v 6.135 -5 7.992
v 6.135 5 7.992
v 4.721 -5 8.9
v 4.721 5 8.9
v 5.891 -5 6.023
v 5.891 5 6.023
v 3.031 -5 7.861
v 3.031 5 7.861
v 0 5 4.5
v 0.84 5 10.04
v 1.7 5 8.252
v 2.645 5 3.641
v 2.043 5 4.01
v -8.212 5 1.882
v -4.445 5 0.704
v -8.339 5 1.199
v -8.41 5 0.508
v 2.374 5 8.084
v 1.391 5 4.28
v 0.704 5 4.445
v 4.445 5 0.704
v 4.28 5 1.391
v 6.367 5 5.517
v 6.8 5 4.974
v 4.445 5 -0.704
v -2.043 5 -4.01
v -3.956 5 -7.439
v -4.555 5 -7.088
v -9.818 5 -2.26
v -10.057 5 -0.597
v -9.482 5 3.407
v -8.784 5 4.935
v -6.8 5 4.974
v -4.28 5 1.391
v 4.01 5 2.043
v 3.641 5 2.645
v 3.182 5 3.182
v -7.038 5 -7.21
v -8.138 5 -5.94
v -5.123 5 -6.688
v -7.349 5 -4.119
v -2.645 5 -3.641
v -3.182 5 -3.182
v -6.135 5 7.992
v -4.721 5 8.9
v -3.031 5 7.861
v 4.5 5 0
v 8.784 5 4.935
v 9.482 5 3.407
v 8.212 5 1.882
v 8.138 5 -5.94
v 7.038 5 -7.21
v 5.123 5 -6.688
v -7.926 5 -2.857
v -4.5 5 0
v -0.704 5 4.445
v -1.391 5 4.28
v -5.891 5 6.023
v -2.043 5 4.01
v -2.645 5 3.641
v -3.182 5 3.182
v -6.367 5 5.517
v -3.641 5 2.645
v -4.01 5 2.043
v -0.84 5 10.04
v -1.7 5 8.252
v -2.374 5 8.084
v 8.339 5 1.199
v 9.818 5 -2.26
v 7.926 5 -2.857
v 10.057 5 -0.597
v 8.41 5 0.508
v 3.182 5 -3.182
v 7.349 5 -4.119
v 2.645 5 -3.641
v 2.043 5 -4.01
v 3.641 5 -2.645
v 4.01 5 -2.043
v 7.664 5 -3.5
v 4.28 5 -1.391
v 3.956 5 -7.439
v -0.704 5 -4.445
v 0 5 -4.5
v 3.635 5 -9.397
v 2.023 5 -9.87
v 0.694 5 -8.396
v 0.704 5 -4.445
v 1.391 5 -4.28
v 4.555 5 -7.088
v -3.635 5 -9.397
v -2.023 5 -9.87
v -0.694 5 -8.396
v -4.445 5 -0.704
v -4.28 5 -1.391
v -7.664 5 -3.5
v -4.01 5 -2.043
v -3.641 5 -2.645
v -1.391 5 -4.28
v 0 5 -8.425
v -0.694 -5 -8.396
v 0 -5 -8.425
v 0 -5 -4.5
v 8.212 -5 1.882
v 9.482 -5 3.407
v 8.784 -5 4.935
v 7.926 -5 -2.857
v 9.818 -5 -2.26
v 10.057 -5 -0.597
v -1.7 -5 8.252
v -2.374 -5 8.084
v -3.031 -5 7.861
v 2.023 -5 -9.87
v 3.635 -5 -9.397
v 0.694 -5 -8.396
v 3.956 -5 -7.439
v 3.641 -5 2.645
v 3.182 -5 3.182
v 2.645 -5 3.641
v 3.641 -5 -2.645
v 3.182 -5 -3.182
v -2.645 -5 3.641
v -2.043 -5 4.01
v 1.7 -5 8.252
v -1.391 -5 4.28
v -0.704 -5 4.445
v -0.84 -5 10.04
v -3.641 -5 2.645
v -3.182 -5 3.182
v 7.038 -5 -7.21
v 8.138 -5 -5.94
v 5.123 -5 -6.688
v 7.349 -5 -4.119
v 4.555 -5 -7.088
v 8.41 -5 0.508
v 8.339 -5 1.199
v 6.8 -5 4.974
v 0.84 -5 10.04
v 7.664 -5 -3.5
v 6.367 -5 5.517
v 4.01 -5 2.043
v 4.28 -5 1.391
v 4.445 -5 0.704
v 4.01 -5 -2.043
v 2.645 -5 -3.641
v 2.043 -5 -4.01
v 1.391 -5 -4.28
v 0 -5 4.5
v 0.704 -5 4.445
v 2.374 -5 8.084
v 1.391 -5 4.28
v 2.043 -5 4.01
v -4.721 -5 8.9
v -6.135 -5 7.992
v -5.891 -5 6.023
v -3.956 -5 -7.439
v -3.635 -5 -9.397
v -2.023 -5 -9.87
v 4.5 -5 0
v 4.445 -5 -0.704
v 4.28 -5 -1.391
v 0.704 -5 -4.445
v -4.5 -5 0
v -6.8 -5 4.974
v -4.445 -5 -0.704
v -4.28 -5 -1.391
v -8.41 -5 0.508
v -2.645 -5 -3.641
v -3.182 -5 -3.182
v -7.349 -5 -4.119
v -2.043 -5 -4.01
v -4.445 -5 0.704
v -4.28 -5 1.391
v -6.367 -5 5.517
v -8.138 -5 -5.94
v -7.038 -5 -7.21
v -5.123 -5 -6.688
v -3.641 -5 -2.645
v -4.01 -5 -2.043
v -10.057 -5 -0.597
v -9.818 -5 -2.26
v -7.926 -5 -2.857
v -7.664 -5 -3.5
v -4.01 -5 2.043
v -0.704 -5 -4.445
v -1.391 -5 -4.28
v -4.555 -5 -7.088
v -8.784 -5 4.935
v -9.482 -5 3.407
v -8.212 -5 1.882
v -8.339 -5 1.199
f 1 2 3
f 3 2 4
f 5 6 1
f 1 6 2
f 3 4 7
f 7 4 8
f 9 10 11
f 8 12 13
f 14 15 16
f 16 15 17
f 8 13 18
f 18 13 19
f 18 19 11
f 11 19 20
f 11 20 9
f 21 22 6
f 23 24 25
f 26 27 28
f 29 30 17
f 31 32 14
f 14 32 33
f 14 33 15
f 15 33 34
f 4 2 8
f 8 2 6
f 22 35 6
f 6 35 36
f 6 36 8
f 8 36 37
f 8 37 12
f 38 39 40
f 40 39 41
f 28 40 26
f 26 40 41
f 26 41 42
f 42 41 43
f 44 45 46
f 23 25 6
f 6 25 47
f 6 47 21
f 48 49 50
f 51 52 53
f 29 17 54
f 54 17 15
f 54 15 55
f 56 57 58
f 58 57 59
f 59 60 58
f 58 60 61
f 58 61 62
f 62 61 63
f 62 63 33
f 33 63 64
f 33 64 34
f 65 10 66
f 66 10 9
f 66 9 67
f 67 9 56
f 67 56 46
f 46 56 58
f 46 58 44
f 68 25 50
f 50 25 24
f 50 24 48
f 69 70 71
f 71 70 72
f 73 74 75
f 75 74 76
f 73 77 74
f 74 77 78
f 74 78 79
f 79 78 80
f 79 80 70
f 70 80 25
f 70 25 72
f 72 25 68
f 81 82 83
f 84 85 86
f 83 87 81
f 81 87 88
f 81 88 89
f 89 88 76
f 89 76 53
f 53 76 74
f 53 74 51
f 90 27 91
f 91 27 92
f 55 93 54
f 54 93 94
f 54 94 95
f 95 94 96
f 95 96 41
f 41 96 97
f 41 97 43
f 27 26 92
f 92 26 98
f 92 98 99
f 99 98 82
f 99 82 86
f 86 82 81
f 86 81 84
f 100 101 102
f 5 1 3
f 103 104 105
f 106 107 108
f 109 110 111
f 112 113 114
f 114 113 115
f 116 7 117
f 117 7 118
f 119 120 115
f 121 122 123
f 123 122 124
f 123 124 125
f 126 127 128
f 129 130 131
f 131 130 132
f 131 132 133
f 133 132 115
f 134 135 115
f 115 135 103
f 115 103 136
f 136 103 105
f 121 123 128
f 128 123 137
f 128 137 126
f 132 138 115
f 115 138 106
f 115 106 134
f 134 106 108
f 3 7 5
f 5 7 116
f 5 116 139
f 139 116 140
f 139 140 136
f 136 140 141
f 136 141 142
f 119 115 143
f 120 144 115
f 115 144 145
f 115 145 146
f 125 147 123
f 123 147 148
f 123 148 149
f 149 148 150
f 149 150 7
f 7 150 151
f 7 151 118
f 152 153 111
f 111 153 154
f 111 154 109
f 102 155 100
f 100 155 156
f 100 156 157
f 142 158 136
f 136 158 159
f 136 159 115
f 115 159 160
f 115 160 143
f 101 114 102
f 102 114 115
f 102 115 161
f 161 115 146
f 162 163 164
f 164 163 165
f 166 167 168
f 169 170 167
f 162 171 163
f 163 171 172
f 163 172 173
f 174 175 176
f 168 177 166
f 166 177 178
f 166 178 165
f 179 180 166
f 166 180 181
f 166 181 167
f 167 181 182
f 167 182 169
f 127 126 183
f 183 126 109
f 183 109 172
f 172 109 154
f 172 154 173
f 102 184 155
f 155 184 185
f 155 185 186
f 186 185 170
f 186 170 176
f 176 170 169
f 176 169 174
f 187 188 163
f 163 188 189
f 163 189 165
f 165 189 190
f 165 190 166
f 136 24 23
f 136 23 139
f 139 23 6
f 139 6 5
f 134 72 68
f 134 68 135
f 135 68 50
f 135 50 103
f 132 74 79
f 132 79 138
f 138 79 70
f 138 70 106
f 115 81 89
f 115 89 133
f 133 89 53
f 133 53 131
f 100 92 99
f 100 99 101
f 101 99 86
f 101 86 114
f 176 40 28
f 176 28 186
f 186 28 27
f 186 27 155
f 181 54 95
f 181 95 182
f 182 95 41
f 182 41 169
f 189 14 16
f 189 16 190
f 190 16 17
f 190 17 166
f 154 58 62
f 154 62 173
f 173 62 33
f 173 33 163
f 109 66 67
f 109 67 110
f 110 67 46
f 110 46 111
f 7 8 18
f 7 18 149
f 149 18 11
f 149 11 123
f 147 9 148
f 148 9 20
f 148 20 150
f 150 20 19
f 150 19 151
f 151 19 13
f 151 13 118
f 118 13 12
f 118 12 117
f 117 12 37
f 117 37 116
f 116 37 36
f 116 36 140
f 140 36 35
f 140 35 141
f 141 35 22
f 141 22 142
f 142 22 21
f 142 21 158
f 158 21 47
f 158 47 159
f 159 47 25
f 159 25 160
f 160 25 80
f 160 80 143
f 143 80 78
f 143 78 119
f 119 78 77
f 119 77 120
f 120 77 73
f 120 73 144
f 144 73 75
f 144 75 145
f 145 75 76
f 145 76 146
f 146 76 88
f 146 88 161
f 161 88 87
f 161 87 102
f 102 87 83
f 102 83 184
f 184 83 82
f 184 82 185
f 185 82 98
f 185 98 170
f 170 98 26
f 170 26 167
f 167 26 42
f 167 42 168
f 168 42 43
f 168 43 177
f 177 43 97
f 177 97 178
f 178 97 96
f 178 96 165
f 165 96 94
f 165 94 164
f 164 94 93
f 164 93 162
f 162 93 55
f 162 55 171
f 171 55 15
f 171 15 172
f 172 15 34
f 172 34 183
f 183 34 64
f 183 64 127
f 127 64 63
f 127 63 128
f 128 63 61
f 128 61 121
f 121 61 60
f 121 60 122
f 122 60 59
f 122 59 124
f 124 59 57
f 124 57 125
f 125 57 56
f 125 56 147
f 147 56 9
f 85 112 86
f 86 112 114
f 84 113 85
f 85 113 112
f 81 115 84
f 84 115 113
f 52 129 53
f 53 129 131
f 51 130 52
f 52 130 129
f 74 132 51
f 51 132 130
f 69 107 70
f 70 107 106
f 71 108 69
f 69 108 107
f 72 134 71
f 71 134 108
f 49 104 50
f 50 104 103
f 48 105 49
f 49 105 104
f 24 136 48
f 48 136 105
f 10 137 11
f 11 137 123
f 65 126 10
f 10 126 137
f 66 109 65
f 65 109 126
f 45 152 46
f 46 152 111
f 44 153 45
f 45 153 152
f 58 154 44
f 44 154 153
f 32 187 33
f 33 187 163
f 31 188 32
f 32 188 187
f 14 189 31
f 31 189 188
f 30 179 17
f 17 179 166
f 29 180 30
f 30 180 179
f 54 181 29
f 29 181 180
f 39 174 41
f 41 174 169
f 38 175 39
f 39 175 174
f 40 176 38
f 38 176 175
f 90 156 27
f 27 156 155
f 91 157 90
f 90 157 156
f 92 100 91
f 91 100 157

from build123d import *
from build123d.topology import SkipClean

# Parameters (mm, degrees)
SKETCH1_R            = 4.5
BOSS_EXTRUDE1_DEPTH  = 4.999999999999969
SKETCH12_R           = 8.425
SKETCH12_R_2         = 4.5
BOSS_EXTRUDE6_DEPTH  = 5
BOSS_EXTRUDE9_DEPTH  = 5
CIRPATTERN2_COUNT    = 11
BOSS_EXTRUDE10_START = 5
SKETCH17_R           = 8.425
SKETCH17_R_2         = 4.5
BOSS_EXTRUDE10_DEPTH = 5
BOSS_EXTRUDE11_DEPTH = 5
SKETCH19_R           = 4.5
CUT_EXTRUDE1_DEPTH   = 10


with BuildPart() as part:
    # Sketch1 → Boss-Extrude1 (new body)
    with BuildSketch(Plane(origin=(0, 0, 0), x_dir=(1, 0, 0), z_dir=(0, 1, 0))):
        with Locations(Location((0, 0, 0), (0, 0, 270))):
            Circle(SKETCH1_R)
    extrude(amount=BOSS_EXTRUDE1_DEPTH)

    # Sketch19 → Cut-Extrude1 (cut)
    with BuildSketch(Plane.XZ):
        with Locations(Location((0, 0, 0), (0, 0, 270))):
            Circle(SKETCH19_R)
    extrude(amount=-CUT_EXTRUDE1_DEPTH, mode=Mode.SUBTRACT)


with BuildPart() as body_2:
    # Sketch12 → Boss-Extrude6 (new body)
    with BuildSketch(Plane(origin=(0, 5, 0), x_dir=(-1, 0, 0), z_dir=(0, -1, 0))):
        with Locations(Location((0, 0, 0), (0, 0, 90))):
            Circle(SKETCH12_R)
        with Locations(Location((0, 0, 0), (0, 0, 270))):
            Circle(SKETCH12_R_2, mode=Mode.SUBTRACT)
    extrude(amount=BOSS_EXTRUDE6_DEPTH)



with BuildPart() as body_3:
    # Sketch13 → Boss-Extrude9 (new body)
    with BuildSketch(Plane.XZ):
        with BuildLine():
            Line((1.700000000000002, 8.251704369401512), (0.84, 10.039921563438629))
            Line((0.84, 10.039921563438629), (-0.84, 10.039921563438629))
            Line((-0.84, 10.039921563438629), (-1.6999999999999977, 8.251704369401512))
            ThreePointArc((-1.6999999999999977, 8.251704369401514), (2.39e-15, 8.425), (1.7000000000000024, 8.251704369401512))
        make_face()
    extrude(amount=-BOSS_EXTRUDE9_DEPTH)


with BuildPart() as cirpattern2_1:
    # CirPattern2: pattern copy
    add(body_3.part.rotate(Axis((-9e-17, 0, -3.9e-16), (0, 1, 0)), 1 * 360 / CIRPATTERN2_COUNT))


with BuildPart() as cirpattern2_2:
    # CirPattern2: pattern copy
    add(body_3.part.rotate(Axis((-9e-17, 0, -3.9e-16), (0, 1, 0)), 2 * 360 / CIRPATTERN2_COUNT))


with BuildPart() as cirpattern2_3:
    # CirPattern2: pattern copy
    add(body_3.part.rotate(Axis((-9e-17, 0, -3.9e-16), (0, 1, 0)), 3 * 360 / CIRPATTERN2_COUNT))


with BuildPart() as cirpattern2_4:
    # CirPattern2: pattern copy
    add(body_3.part.rotate(Axis((-9e-17, 0, -3.9e-16), (0, 1, 0)), 4 * 360 / CIRPATTERN2_COUNT))


with BuildPart() as cirpattern2_5:
    # CirPattern2: pattern copy
    add(body_3.part.rotate(Axis((-9e-17, 0, -3.9e-16), (0, 1, 0)), 5 * 360 / CIRPATTERN2_COUNT))


with BuildPart() as cirpattern2_6:
    # CirPattern2: pattern copy
    add(body_3.part.rotate(Axis((-9e-17, 0, -3.9e-16), (0, 1, 0)), 6 * 360 / CIRPATTERN2_COUNT))


with BuildPart() as cirpattern2_7:
    # CirPattern2: pattern copy
    add(body_3.part.rotate(Axis((-9e-17, 0, -3.9e-16), (0, 1, 0)), 7 * 360 / CIRPATTERN2_COUNT))


with BuildPart() as cirpattern2_8:
    # CirPattern2: pattern copy
    add(body_3.part.rotate(Axis((-9e-17, 0, -3.9e-16), (0, 1, 0)), 8 * 360 / CIRPATTERN2_COUNT))


with BuildPart() as cirpattern2_9:
    # CirPattern2: pattern copy
    add(body_3.part.rotate(Axis((-9e-17, 0, -3.9e-16), (0, 1, 0)), 9 * 360 / CIRPATTERN2_COUNT))


with BuildPart() as cirpattern2_10:
    # CirPattern2: pattern copy
    add(body_3.part.rotate(Axis((-9e-17, 0, -3.9e-16), (0, 1, 0)), 10 * 360 / CIRPATTERN2_COUNT))


with BuildPart() as body_2_1:
    with SkipClean():  # the faces are left unmerged after this step: merging them gives an invalid solid
        add(body_2.part)

        add(body_3.part)  # Boss-Extrude10 merges body 3

        add(cirpattern2_2.part)  # Boss-Extrude10 merges CirPattern2_2

        add(cirpattern2_3.part)  # Boss-Extrude10 merges CirPattern2_3

        add(cirpattern2_4.part)  # Boss-Extrude10 merges CirPattern2_4

        add(cirpattern2_5.part)  # Boss-Extrude10 merges CirPattern2_5

        add(cirpattern2_6.part)  # Boss-Extrude10 merges CirPattern2_6

        add(cirpattern2_7.part)  # Boss-Extrude10 merges CirPattern2_7

        add(cirpattern2_8.part)  # Boss-Extrude10 merges CirPattern2_8

        add(cirpattern2_9.part)  # Boss-Extrude10 merges CirPattern2_9

        add(cirpattern2_10.part)  # Boss-Extrude10 merges CirPattern2_10
        # Sketch17 → Boss-Extrude10 (add)
        # profile 1 of 11: a face of its own
        with BuildSketch(Plane.XZ.offset(BOSS_EXTRUDE10_START)):
            Circle(SKETCH17_R)
            with Locations(Location((0, 0, 0), (0, 0, 90))):
                Circle(SKETCH17_R_2, mode=Mode.SUBTRACT)
        # profile 2 of 11: a face of its own
        with BuildSketch(Plane.XZ.offset(BOSS_EXTRUDE10_START)):
            with BuildLine():
                ThreePointArc((-1.6999999999999988, 8.251704369401518), (2.05e-15, 8.425000000000002), (1.7000000000000028, 8.251704369401514))
                Line((1.7000000000000024, 8.251704369401512), (0.8400000000000013, 10.039921563438629))
                Line((0.8400000000000013, 10.039921563438629), (-0.8400000000000009, 10.039921563438629))
                Line((-0.8400000000000009, 10.039921563438629), (-1.6999999999999984, 8.251704369401514))
            make_face()
        # profile 3 of 11: a face of its own
        with BuildSketch(Plane.XZ.offset(BOSS_EXTRUDE10_START)):
            with BuildLine():
                ThreePointArc((-5.891339201488175, 6.022686062962995), (-4.554898887063417, 7.087561014102698), (-3.0310771898621596, 7.860864842312031))
                Line((-3.03107718986216, 7.860864842312031), (-4.72133843366936, 8.9002577712534))
                Line((-4.72133843366936, 8.9002577712534), (-6.134644368825746, 7.991981197927994))
                Line((-6.134644368825746, 7.991981197927994), (-5.891339201488176, 6.022686062962995))
            make_face()
        # profile 4 of 11: a face of its own
        with BuildSketch(Plane.XZ.offset(BOSS_EXTRUDE10_START)):
            with BuildLine():
                Line((-9.481582495875129, 3.4066432707159575), (-8.212219832717508, 1.8815074857999516))
                ThreePointArc((-8.21221983271751, 1.8815074857999512), (-7.663649560861826, 3.4998714845408747), (-6.7998087885111005, 4.974256270005318))
                Line((-6.7998087885111, 4.974256270005317), (-8.783685274031965, 4.934825022911553))
                Line((-8.783685274031965, 4.934825022911553), (-9.481582495875129, 3.4066432707159575))
            make_face()
        # profile 5 of 11: a face of its own
        with BuildSketch(Plane.XZ.offset(BOSS_EXTRUDE10_START)):
            with BuildLine():
                Line((-9.818185174144725, -2.260279824757259), (-7.925778691831604, -2.8570364240079513))
                ThreePointArc((-7.925778691831604, -2.857036424007951), (-8.339245647846854, -1.1990025124524568), (-8.409649141960784, 0.5083564783872193))
                Line((-8.409649141960784, 0.5083564783872193), (-10.057274102443852, -0.5973798023972904))
                Line((-10.057274102443852, -0.5973798023972905), (-9.818185174144725, -2.260279824757259))
            make_face()
        # profile 6 of 11: a face of its own
        with BuildSketch(Plane.XZ.offset(BOSS_EXTRUDE10_START)):
            with BuildLine():
                Line((-7.037583431604806, -7.20958004624413), (-5.1229588171653475, -6.688491456048056))
                ThreePointArc((-5.1229588171653475, -6.688491456048055), (-6.367190163934598, -5.517201683489059), (-7.349485312579329, -4.118942903243587))
                Line((-7.34948531257933, -4.118942903243588), (-8.137749464632893, -5.93992076132898))
                Line((-8.137749464632893, -5.93992076132898), (-7.037583431604806, -7.20958004624413))
            make_face()
        # profile 7 of 11: a face of its own
        with BuildSketch(Plane.XZ.offset(BOSS_EXTRUDE10_START)):
            with BuildLine():
                Line((-2.022598674718725, -9.869889543506861), (-0.6936357151463852, -8.396397709415234))
                ThreePointArc((-0.6936357151463853, -8.396397709415236), (-2.3735967913889944, -8.08372830270216), (-3.955911825435684, -7.4385070161543965))
                Line((-3.9559118254356838, -7.438507016154395), (-3.634546870391086, -9.39657884801327))
                Line((-3.634546870391086, -9.39657884801327), (-2.022598674718725, -9.869889543506861))
            make_face()
        # profile 8 of 11: a face of its own
        with BuildSketch(Plane.XZ.offset(BOSS_EXTRUDE10_START)):
            with BuildLine():
                Line((3.6345468703912207, -9.396578848013215), (3.955911825435787, -7.438507016154339))
                ThreePointArc((3.955911825435787, -7.438507016154339), (2.3735967913891054, -8.083728302702124), (0.6936357151465026, -8.396397709415222))
                Line((0.6936357151465024, -8.396397709415224), (2.022598674718867, -9.86988954350683))
                Line((2.022598674718867, -9.86988954350683), (3.6345468703912207, -9.396578848013215))
            make_face()
        # profile 9 of 11: a face of its own
        with BuildSketch(Plane.XZ.offset(BOSS_EXTRUDE10_START)):
            with BuildLine():
                Line((5.122958817165441, -6.688491456047983), (7.037583431604909, -7.209580046244029))
                Line((7.037583431604909, -7.209580046244029), (8.137749464632977, -5.939920761328863))
                Line((8.137749464632977, -5.939920761328863), (7.349485312579388, -4.118942903243486))
                ThreePointArc((7.349485312579388, -4.118942903243488), (6.367190163934675, -5.51720168348897), (5.122958817165442, -6.6884914560479825))
            make_face()
        # profile 10 of 11: a face of its own
        with BuildSketch(Plane.XZ.offset(BOSS_EXTRUDE10_START)):
            with BuildLine():
                ThreePointArc((8.425, 5e-16), (8.299256306401244, -1.4501619773870813), (7.925778691831642, -2.8570364240078403))
                Line((7.925778691831642, -2.8570364240078403), (9.818185174144755, -2.260279824757118))
                Line((9.818185174144755, -2.260279824757118), (10.05727410244386, -0.5973798023971462))
                Line((10.05727410244386, -0.597379802397146), (8.409649141960777, 0.5083564783873361))
                ThreePointArc((8.409649141960777, 0.508356478387336), (8.42116141102341, 0.25429410038423766), (8.425, 5e-16))
            make_face()
        # profile 11 of 11: a face of its own
        with BuildSketch(Plane.XZ.offset(BOSS_EXTRUDE10_START)):
            with BuildLine():
                ThreePointArc((6.79980878851103, 4.974256270005415), (7.663649560861776, 3.499871484540982), (8.21221983271748, 1.8815074858000667))
                Line((8.21221983271748, 1.8815074858000667), (9.481582495875081, 3.4066432707160943))
                Line((9.481582495875081, 3.4066432707160943), (8.783685274031892, 4.934825022911679))
                Line((8.783685274031892, 4.934825022911679), (6.799808788511031, 4.974256270005414))
            make_face()
        extrude(amount=-BOSS_EXTRUDE10_DEPTH)


    add(cirpattern2_1.part)  # Boss-Extrude11 merges CirPattern2_1
    # Sketch18 → Boss-Extrude11 (add)
    with BuildSketch(Plane.XZ):
        with BuildLine():
            Line((6.1346443688256285, 7.991981197928084), (4.721338433669231, 8.900257771253472))
            Line((4.721338433669231, 8.900257771253472), (3.031077189862048, 7.860864842312075))
            ThreePointArc((3.031077189862048, 7.860864842312075), (4.554898887063315, 7.087561014102763), (5.891339201488088, 6.022686062963079))
            Line((5.891339201488088, 6.022686062963079), (6.1346443688256285, 7.991981197928084))
        make_face()
    extrude(amount=BOSS_EXTRUDE11_DEPTH)


solid = body_2_1.part
